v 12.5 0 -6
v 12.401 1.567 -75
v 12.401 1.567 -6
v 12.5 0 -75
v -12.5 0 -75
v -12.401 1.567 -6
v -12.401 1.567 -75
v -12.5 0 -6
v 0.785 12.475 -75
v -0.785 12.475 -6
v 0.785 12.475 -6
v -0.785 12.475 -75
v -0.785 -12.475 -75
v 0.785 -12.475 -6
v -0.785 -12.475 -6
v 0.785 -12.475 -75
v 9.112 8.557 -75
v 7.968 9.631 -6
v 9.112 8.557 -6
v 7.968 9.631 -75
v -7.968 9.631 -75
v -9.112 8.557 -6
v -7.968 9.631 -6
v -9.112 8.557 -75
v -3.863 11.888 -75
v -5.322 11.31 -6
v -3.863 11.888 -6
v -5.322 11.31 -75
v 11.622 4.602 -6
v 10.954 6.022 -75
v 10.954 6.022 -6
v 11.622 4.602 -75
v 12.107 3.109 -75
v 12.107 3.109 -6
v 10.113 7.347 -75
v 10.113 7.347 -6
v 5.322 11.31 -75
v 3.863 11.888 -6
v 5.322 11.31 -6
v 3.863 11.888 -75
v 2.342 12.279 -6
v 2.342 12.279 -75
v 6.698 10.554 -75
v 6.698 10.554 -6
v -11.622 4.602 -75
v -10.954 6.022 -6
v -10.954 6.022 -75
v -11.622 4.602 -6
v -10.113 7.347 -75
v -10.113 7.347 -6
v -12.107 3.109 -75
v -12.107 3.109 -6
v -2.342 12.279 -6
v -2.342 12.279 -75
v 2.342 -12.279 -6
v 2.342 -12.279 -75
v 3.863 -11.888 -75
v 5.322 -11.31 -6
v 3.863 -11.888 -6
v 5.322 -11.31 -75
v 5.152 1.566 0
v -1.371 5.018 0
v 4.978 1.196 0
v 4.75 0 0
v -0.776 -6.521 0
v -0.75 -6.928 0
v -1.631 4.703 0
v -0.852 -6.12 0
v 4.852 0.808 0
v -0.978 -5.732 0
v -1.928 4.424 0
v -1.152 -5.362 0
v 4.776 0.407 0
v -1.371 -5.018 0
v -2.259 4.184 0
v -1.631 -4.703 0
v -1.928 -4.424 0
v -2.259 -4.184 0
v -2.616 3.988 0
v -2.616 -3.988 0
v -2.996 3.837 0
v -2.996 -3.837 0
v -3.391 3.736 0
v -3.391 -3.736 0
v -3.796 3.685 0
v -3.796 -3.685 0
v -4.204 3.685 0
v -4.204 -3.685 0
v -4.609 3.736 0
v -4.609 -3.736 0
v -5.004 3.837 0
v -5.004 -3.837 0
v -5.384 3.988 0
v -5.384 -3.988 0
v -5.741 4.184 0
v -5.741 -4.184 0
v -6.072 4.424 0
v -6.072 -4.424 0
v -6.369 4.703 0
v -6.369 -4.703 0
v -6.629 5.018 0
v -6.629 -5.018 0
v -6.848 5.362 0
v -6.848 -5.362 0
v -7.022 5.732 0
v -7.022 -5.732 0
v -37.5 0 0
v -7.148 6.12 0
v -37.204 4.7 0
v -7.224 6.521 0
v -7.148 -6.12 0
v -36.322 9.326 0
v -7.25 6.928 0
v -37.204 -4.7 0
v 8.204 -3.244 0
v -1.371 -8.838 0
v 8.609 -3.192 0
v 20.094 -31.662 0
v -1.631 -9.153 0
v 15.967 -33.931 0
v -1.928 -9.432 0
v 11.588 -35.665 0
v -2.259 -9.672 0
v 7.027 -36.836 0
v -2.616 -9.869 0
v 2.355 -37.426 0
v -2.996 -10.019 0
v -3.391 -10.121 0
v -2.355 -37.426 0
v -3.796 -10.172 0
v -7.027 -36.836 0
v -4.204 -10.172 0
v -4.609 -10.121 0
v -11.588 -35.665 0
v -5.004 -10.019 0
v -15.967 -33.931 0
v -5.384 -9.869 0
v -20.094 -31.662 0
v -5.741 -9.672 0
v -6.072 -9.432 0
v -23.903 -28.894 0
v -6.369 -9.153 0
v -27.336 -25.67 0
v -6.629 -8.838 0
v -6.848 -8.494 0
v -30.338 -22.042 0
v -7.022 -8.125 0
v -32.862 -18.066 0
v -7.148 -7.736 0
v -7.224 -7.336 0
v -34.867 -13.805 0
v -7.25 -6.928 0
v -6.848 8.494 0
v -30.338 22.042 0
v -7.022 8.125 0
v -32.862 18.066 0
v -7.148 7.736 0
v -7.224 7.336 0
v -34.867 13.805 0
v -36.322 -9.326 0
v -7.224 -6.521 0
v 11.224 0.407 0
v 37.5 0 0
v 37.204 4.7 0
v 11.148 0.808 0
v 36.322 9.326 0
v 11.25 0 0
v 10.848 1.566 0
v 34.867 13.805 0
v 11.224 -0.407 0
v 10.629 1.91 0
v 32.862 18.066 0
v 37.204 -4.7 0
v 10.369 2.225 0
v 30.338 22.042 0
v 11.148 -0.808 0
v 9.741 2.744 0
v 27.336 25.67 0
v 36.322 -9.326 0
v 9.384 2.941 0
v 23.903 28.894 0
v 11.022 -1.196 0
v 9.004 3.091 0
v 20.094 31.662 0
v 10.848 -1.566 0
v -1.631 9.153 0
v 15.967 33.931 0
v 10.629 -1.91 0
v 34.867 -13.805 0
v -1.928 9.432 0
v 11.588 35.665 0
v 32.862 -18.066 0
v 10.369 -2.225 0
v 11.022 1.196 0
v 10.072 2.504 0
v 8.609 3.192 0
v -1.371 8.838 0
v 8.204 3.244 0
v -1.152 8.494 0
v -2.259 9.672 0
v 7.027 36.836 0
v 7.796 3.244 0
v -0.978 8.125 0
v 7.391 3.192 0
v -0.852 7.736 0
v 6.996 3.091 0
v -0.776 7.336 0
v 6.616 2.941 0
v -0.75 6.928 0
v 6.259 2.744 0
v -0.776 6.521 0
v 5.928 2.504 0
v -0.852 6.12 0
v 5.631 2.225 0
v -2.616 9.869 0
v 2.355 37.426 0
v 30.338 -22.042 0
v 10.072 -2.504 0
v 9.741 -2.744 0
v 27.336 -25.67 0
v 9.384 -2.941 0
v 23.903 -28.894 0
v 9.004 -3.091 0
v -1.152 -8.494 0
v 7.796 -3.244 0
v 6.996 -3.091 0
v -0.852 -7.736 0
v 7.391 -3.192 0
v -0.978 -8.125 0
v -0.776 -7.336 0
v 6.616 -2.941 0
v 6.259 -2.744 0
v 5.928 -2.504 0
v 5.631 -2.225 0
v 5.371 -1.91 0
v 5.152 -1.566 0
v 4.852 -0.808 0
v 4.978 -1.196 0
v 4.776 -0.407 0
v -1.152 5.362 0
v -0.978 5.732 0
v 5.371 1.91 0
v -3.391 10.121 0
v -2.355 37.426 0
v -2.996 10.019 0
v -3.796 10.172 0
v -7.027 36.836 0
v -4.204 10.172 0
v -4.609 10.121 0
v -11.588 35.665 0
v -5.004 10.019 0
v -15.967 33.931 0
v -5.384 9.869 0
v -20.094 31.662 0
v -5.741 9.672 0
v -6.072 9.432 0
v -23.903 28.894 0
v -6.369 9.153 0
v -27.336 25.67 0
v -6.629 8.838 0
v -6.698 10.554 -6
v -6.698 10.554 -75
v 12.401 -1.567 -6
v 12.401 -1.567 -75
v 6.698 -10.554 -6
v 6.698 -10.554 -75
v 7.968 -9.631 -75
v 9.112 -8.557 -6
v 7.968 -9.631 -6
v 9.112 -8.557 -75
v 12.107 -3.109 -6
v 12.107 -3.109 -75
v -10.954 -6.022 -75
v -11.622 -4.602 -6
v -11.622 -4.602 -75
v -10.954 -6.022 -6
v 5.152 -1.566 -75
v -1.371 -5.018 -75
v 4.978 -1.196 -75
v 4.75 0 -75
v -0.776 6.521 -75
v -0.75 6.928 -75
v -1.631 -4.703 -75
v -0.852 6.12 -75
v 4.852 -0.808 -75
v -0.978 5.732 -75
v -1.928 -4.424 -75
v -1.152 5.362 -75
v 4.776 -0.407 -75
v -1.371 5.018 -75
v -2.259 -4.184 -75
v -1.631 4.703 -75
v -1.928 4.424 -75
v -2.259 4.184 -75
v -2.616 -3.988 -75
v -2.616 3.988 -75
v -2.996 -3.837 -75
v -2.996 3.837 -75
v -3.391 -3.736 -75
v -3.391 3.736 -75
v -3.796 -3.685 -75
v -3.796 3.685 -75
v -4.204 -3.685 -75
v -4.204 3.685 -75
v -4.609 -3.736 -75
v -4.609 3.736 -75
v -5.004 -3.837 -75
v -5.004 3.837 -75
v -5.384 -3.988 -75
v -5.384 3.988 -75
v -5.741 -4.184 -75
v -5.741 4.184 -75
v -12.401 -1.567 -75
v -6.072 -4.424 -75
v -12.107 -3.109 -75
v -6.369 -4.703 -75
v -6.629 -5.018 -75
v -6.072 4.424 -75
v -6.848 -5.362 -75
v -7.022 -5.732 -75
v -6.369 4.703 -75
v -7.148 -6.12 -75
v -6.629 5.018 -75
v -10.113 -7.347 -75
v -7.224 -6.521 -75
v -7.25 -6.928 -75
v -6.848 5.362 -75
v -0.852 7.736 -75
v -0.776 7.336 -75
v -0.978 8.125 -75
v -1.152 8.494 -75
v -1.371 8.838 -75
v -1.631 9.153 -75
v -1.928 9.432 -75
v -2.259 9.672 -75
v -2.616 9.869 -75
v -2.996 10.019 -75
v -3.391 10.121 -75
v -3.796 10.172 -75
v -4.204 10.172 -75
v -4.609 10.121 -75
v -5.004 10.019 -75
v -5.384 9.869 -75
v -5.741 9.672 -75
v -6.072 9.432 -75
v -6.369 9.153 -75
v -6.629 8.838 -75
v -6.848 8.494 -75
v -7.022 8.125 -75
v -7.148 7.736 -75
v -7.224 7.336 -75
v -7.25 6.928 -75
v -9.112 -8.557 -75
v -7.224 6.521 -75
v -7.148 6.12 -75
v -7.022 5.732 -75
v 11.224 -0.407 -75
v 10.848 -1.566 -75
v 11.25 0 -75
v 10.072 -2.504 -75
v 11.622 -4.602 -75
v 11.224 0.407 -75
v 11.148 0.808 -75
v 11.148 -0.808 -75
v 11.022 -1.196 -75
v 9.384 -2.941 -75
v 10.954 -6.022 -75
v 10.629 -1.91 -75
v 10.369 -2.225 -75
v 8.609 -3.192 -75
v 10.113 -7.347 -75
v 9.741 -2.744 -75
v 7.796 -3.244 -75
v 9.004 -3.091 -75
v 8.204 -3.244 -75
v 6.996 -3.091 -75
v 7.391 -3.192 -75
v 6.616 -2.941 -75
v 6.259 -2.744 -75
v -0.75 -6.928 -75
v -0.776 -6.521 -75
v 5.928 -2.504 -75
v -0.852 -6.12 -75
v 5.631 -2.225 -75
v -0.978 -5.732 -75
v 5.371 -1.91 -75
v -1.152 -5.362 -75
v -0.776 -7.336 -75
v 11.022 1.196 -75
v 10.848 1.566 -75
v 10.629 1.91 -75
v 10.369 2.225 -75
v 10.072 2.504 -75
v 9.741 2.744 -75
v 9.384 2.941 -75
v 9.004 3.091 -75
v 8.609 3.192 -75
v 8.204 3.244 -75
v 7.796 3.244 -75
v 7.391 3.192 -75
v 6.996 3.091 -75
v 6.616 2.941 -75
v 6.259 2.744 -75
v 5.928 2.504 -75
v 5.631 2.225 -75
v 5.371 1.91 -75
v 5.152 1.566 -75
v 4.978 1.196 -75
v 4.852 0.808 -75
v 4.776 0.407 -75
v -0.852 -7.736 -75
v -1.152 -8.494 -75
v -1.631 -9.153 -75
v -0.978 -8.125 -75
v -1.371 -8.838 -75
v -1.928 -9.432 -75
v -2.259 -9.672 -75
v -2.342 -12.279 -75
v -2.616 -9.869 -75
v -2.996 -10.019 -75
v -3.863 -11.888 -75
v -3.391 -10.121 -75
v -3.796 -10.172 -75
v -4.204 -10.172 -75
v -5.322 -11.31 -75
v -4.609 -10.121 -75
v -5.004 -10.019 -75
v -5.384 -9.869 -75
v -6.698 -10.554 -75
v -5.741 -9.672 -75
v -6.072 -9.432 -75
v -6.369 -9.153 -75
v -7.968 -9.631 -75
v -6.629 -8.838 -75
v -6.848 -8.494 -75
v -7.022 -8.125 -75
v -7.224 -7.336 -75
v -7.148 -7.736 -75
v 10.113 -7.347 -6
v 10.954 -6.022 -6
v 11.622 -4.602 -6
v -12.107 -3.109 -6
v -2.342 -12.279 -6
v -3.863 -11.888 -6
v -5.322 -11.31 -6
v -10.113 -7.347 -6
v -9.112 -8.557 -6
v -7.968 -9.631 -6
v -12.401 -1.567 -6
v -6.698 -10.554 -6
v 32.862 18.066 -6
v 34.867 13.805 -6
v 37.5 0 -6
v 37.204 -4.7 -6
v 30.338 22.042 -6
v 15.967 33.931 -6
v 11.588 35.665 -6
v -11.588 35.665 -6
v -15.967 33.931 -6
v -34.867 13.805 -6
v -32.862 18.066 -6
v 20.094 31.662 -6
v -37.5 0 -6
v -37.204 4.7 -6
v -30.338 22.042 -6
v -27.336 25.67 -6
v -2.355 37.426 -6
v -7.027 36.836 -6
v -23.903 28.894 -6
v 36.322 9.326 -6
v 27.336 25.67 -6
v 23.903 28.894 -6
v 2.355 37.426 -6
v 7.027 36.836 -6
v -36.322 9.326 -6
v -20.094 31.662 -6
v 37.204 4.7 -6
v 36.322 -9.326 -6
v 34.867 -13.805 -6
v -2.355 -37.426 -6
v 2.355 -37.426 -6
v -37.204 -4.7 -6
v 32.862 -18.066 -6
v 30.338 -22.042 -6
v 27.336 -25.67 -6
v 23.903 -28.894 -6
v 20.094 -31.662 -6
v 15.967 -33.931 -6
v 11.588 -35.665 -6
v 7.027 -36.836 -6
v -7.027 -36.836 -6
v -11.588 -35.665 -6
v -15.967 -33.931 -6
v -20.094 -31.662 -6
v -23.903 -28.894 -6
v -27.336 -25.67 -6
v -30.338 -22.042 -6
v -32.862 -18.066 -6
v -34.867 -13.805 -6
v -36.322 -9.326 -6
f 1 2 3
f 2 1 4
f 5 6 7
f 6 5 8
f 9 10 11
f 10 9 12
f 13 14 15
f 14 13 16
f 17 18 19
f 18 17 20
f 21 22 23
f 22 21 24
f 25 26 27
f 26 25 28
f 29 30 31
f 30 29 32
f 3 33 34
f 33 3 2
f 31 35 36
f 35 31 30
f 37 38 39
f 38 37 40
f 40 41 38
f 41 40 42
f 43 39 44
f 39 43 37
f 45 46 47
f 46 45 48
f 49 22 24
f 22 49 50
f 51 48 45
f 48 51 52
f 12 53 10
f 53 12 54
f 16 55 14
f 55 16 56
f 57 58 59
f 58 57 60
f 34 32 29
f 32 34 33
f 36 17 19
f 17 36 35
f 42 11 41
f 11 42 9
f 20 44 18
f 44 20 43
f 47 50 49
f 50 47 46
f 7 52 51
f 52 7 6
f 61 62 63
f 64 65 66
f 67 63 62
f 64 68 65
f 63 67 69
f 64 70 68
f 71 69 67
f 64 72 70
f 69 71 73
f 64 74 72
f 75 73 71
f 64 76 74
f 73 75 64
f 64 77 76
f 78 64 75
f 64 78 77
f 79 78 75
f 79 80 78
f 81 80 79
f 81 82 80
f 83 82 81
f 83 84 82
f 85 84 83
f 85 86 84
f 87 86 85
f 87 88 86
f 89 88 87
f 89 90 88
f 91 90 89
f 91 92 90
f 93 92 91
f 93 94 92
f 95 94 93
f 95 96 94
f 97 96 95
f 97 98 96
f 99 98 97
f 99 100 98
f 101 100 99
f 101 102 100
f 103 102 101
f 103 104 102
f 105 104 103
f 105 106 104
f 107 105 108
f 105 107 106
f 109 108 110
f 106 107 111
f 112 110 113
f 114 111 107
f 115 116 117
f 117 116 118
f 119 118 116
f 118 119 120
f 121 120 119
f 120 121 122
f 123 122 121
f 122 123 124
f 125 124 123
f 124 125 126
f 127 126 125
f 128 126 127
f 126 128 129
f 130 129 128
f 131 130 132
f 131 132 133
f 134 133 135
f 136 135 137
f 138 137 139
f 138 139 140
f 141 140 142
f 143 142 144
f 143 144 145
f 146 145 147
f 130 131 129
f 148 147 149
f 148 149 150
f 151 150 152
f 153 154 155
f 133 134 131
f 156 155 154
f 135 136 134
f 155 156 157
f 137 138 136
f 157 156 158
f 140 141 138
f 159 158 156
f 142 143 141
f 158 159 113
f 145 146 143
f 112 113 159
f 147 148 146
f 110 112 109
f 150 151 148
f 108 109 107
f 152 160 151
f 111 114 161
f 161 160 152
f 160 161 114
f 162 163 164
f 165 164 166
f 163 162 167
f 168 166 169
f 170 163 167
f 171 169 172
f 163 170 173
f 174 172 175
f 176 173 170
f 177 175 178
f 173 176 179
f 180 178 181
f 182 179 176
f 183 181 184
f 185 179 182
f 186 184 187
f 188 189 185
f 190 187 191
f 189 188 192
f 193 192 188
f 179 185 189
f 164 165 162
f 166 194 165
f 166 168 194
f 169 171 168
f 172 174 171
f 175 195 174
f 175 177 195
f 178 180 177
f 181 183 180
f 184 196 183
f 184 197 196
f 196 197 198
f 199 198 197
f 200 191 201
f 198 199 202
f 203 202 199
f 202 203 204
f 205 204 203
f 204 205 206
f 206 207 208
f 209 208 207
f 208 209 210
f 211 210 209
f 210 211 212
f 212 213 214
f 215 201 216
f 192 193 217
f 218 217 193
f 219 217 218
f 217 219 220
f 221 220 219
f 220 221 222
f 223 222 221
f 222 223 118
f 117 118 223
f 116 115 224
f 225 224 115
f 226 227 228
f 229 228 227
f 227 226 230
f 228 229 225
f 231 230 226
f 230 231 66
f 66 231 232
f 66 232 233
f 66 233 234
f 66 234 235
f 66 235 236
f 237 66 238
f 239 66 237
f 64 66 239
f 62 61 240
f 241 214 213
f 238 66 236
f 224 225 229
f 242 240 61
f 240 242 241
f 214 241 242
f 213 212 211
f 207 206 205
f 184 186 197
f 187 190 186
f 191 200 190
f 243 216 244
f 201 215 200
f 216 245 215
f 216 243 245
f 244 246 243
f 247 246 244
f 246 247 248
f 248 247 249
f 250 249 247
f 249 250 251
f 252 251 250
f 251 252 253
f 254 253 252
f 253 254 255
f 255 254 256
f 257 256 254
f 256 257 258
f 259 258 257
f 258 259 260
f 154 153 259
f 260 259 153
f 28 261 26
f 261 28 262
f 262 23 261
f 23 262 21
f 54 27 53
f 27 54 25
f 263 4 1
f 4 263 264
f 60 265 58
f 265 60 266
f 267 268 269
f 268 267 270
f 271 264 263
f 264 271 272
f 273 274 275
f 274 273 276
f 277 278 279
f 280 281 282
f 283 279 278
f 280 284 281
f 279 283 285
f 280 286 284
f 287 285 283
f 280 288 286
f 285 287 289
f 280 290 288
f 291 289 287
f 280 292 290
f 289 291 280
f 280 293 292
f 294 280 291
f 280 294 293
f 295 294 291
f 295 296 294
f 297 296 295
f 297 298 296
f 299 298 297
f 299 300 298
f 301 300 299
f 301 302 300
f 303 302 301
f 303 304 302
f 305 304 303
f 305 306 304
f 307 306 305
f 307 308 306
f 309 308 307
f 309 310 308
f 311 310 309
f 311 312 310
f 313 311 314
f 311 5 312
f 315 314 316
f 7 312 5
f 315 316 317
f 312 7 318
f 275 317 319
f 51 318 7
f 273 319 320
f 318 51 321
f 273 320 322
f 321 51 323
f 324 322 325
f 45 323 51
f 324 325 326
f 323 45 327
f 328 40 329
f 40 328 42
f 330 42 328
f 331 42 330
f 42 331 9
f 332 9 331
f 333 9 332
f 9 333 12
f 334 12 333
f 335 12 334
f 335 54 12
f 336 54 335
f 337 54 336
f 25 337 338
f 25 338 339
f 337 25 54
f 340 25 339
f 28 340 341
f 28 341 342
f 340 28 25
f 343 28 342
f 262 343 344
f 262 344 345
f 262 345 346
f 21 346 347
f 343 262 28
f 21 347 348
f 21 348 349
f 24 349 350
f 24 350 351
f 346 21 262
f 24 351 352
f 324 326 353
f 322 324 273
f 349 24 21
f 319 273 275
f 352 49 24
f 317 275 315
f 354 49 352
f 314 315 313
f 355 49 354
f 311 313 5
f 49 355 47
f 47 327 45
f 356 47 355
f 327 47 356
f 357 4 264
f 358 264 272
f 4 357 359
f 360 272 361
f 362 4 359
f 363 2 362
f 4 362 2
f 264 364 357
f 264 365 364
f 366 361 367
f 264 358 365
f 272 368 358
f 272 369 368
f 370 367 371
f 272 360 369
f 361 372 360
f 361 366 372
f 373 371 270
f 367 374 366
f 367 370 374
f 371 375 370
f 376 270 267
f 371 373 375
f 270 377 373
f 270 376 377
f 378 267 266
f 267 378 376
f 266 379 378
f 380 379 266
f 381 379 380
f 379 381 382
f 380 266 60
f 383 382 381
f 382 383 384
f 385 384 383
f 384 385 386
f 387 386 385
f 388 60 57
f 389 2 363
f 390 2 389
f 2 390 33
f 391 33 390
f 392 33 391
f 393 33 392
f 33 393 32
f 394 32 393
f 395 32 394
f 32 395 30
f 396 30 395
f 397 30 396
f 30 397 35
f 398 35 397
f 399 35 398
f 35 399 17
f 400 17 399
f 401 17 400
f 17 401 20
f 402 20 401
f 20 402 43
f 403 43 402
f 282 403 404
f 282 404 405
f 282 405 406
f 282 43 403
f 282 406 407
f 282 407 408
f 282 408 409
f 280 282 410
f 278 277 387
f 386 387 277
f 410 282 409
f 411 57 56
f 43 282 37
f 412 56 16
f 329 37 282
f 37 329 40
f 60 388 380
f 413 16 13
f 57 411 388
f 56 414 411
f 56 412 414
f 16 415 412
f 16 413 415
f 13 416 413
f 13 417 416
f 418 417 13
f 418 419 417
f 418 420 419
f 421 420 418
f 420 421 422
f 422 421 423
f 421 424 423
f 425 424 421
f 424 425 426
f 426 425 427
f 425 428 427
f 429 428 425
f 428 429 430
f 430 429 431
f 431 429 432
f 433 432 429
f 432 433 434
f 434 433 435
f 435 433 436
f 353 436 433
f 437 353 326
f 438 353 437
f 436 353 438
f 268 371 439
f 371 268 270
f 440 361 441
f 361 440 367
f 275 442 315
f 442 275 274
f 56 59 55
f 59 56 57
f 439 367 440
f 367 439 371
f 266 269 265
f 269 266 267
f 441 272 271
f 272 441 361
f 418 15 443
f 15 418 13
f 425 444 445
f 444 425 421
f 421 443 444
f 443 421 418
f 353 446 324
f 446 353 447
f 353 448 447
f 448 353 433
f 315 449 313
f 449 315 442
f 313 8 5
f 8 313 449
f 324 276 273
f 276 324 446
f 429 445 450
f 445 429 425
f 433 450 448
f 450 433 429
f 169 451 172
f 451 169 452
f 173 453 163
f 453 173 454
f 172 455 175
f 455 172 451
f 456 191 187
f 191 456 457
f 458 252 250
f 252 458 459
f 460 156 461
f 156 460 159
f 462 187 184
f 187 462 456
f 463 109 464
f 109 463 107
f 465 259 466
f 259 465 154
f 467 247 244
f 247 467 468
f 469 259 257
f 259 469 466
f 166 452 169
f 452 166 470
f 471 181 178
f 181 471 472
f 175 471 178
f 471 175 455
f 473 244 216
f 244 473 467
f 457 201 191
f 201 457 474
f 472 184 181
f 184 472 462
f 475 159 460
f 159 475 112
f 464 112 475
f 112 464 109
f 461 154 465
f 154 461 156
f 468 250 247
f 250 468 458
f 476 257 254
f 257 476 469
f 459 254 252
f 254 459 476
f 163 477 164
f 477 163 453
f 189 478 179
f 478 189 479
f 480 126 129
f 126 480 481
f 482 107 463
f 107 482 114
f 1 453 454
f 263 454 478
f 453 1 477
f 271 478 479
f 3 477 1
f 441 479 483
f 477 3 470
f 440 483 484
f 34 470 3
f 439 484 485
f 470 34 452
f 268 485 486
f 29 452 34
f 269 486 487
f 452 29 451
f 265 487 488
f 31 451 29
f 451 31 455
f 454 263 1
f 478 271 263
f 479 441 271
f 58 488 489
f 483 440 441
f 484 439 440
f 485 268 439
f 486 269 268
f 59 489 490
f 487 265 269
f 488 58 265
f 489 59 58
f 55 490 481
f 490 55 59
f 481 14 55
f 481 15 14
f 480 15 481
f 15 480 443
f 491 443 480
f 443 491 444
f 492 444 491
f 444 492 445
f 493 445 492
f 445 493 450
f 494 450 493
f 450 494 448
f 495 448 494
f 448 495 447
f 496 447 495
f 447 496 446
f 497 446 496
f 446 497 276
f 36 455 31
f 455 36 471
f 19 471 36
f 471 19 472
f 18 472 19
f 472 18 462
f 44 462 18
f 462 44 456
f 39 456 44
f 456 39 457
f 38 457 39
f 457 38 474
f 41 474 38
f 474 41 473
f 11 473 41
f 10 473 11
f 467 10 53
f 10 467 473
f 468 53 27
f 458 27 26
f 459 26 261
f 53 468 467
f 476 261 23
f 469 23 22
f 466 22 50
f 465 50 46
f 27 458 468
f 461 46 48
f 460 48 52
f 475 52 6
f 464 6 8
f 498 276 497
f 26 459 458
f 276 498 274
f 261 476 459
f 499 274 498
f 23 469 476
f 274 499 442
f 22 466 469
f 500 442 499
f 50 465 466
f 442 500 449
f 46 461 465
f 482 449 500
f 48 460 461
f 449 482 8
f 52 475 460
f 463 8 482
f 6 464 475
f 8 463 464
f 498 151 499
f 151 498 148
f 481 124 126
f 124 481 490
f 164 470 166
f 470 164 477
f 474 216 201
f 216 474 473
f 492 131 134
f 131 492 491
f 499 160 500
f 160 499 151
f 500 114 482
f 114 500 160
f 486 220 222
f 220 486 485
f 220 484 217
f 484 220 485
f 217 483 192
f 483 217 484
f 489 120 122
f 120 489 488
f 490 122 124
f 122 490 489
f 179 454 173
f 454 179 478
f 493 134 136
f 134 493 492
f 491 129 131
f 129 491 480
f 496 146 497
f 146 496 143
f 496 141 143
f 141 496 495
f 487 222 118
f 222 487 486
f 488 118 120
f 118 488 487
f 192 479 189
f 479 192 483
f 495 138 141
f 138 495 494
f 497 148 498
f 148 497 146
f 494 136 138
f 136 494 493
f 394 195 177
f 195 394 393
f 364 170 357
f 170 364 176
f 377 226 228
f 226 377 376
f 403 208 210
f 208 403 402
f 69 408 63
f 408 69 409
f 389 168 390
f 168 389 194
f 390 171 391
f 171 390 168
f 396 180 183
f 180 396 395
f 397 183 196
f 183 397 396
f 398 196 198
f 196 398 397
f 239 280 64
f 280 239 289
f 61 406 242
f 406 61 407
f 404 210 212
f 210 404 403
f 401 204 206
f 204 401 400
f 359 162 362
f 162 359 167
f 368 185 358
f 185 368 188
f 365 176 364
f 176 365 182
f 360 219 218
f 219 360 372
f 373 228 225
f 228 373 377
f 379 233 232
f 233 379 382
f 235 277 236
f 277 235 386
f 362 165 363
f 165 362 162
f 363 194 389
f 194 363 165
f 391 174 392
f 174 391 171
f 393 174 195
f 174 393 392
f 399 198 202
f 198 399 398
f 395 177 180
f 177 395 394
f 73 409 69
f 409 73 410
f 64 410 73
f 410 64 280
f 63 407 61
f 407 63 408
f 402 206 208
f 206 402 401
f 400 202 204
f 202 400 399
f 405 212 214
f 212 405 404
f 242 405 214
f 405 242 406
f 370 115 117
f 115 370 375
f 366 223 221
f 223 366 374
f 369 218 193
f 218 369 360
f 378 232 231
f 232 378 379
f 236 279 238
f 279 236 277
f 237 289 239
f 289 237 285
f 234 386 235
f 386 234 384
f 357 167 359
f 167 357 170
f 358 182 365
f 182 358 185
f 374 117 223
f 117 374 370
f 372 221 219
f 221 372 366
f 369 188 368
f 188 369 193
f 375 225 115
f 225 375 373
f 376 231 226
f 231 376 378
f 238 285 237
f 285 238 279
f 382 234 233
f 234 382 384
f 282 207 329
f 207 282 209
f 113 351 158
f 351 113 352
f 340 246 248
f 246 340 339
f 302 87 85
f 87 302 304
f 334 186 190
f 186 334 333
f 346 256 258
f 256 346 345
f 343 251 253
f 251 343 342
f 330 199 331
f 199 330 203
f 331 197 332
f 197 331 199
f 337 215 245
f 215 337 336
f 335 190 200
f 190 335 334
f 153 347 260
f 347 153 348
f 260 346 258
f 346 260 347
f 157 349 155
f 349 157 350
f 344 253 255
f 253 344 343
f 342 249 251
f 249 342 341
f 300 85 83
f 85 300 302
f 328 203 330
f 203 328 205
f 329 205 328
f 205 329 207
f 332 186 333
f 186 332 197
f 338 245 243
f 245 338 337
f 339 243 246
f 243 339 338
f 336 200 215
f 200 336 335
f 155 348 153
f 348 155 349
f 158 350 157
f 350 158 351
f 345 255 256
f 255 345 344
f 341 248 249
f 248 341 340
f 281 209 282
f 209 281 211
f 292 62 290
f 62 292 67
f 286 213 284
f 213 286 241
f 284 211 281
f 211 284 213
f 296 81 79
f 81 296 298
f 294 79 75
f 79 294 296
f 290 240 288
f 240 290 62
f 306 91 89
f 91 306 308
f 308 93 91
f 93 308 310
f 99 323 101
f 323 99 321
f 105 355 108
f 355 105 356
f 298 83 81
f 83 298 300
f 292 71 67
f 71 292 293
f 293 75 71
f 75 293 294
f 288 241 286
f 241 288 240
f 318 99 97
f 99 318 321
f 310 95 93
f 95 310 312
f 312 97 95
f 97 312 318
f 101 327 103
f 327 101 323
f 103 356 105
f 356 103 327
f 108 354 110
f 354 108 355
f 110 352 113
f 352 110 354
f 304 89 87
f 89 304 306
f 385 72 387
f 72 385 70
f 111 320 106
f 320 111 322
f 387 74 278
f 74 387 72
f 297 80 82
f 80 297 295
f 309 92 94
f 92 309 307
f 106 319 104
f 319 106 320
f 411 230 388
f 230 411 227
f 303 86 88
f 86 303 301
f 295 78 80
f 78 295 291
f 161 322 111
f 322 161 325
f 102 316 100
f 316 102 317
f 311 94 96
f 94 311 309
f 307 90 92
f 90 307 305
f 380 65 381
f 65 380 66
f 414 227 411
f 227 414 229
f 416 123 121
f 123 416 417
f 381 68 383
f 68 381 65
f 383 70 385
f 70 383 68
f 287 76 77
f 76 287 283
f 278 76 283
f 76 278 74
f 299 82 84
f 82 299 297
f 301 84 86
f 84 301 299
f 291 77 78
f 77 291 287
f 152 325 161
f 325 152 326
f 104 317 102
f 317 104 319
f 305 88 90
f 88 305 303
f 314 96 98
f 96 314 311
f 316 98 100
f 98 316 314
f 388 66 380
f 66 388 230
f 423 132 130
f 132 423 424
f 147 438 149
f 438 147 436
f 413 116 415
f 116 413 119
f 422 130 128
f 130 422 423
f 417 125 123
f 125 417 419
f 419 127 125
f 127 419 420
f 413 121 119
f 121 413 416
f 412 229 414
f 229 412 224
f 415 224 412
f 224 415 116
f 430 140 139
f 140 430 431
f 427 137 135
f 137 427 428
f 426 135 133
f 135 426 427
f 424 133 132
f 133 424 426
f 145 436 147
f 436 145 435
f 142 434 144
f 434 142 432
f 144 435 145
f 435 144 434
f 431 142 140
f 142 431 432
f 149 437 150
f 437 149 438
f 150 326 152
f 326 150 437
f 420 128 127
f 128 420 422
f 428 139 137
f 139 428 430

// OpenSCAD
$fn = 50;


difference() {
	union() {
		translate(v = [0, 0, -75.0000000000]) {
			cylinder(h = 75, r = 12.5000000000);
		}
		translate(v = [0, 0, -6.0000000000]) {
			cylinder(h = 6, r = 37.5000000000);
		}
	}
	union() {
		#translate(v = [8.0000000000, 0.0000000000, -75]) {
			cylinder(h = 75, r = 3.2500000000);
		}
		#translate(v = [-4.0000000000, 6.9282032303, -75]) {
			cylinder(h = 75, r = 3.2500000000);
		}
		#translate(v = [-4.0000000000, -6.9282032303, -75]) {
			cylinder(h = 75, r = 3.2500000000);
		}
	}
}
